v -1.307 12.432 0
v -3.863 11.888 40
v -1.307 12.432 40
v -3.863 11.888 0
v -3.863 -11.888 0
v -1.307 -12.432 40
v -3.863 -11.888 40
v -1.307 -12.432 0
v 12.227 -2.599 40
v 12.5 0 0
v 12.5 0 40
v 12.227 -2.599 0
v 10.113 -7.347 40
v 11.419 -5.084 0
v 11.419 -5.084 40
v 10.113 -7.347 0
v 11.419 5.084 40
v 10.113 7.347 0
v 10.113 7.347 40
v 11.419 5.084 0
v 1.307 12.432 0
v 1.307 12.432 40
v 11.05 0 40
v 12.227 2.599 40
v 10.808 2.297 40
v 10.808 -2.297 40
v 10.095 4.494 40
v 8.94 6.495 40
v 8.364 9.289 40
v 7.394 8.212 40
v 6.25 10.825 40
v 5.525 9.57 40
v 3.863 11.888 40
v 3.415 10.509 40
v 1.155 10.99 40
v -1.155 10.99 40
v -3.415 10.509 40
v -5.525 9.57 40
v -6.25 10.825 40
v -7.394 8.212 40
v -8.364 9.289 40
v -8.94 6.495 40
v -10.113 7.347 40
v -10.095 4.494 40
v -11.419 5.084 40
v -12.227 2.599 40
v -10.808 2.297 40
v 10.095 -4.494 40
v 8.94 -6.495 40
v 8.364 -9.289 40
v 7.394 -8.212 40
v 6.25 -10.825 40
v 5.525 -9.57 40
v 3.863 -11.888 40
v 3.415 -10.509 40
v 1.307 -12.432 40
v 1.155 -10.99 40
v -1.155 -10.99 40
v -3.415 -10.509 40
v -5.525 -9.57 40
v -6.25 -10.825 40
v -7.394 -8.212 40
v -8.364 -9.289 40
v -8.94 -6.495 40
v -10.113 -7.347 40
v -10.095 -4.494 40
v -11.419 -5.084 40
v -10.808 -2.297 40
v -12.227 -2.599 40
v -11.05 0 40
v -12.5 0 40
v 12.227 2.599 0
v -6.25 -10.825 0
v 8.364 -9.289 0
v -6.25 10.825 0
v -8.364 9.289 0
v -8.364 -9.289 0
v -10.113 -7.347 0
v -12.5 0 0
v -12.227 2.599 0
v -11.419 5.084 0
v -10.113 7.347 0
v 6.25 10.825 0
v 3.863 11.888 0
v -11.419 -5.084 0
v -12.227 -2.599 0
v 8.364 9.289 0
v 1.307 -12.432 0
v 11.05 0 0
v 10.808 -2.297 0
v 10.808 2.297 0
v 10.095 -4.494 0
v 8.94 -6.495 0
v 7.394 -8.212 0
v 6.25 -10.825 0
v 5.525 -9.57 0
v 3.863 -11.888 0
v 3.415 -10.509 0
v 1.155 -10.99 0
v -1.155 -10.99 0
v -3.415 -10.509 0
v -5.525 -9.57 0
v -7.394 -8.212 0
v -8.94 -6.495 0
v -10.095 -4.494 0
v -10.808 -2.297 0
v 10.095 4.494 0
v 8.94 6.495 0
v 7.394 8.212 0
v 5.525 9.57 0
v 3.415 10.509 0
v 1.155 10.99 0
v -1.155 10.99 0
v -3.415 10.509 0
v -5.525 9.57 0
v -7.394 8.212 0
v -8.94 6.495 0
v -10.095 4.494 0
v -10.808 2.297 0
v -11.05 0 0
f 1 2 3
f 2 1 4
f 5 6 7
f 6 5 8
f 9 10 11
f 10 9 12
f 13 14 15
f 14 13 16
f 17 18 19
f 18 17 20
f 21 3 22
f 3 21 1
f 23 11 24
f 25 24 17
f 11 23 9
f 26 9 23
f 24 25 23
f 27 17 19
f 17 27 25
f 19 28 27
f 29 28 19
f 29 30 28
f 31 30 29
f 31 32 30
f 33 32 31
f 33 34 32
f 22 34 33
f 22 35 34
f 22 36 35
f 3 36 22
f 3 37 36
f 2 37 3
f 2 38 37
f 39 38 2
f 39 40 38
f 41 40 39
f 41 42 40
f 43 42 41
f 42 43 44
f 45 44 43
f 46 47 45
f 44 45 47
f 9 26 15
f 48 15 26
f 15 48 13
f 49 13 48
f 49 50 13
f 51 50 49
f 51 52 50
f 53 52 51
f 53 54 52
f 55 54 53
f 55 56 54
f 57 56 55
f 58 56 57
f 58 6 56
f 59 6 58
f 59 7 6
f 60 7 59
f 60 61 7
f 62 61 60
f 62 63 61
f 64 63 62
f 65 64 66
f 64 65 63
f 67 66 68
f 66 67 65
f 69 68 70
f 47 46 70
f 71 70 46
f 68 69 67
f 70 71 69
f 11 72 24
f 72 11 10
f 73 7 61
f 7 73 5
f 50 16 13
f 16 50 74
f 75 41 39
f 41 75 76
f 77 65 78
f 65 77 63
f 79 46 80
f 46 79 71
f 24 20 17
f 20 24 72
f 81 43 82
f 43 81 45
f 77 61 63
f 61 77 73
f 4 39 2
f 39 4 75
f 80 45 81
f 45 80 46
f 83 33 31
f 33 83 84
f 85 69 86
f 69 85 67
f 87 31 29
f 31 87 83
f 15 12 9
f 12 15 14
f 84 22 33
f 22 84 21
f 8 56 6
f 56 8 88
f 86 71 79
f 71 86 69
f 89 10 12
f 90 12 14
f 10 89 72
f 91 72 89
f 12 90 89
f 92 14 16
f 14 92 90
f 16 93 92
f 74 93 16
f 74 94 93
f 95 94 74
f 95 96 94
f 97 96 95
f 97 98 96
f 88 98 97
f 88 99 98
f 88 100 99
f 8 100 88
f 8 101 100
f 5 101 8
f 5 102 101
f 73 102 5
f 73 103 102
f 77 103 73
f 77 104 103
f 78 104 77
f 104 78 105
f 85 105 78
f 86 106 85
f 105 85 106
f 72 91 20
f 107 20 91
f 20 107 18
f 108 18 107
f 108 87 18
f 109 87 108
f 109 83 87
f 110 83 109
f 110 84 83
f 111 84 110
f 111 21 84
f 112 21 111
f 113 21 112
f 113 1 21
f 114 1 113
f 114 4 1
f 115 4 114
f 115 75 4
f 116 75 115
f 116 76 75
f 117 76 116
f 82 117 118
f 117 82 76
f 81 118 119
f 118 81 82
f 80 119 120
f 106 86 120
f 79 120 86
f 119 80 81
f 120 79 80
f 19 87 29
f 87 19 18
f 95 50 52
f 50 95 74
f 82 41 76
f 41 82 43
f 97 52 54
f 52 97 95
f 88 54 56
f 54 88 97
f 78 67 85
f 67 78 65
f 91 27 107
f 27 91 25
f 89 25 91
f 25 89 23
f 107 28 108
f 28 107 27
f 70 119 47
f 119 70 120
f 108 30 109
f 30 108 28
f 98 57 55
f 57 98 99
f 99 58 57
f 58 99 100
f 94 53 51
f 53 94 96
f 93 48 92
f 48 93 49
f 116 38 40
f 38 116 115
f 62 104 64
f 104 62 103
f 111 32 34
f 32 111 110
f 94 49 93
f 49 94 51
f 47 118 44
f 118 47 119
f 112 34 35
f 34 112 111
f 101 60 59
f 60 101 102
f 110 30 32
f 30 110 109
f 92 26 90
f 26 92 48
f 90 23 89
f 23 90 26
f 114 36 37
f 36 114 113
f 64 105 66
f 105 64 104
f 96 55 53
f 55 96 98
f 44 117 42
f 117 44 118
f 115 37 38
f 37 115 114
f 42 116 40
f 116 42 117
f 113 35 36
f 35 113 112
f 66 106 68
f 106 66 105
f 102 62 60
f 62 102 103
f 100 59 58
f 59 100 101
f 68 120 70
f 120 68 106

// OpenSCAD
difference() {
    cylinder( d=25,   h=40 );
    translate([0, 0, -1])
    cylinder( d=22.1, h=42 );
}
